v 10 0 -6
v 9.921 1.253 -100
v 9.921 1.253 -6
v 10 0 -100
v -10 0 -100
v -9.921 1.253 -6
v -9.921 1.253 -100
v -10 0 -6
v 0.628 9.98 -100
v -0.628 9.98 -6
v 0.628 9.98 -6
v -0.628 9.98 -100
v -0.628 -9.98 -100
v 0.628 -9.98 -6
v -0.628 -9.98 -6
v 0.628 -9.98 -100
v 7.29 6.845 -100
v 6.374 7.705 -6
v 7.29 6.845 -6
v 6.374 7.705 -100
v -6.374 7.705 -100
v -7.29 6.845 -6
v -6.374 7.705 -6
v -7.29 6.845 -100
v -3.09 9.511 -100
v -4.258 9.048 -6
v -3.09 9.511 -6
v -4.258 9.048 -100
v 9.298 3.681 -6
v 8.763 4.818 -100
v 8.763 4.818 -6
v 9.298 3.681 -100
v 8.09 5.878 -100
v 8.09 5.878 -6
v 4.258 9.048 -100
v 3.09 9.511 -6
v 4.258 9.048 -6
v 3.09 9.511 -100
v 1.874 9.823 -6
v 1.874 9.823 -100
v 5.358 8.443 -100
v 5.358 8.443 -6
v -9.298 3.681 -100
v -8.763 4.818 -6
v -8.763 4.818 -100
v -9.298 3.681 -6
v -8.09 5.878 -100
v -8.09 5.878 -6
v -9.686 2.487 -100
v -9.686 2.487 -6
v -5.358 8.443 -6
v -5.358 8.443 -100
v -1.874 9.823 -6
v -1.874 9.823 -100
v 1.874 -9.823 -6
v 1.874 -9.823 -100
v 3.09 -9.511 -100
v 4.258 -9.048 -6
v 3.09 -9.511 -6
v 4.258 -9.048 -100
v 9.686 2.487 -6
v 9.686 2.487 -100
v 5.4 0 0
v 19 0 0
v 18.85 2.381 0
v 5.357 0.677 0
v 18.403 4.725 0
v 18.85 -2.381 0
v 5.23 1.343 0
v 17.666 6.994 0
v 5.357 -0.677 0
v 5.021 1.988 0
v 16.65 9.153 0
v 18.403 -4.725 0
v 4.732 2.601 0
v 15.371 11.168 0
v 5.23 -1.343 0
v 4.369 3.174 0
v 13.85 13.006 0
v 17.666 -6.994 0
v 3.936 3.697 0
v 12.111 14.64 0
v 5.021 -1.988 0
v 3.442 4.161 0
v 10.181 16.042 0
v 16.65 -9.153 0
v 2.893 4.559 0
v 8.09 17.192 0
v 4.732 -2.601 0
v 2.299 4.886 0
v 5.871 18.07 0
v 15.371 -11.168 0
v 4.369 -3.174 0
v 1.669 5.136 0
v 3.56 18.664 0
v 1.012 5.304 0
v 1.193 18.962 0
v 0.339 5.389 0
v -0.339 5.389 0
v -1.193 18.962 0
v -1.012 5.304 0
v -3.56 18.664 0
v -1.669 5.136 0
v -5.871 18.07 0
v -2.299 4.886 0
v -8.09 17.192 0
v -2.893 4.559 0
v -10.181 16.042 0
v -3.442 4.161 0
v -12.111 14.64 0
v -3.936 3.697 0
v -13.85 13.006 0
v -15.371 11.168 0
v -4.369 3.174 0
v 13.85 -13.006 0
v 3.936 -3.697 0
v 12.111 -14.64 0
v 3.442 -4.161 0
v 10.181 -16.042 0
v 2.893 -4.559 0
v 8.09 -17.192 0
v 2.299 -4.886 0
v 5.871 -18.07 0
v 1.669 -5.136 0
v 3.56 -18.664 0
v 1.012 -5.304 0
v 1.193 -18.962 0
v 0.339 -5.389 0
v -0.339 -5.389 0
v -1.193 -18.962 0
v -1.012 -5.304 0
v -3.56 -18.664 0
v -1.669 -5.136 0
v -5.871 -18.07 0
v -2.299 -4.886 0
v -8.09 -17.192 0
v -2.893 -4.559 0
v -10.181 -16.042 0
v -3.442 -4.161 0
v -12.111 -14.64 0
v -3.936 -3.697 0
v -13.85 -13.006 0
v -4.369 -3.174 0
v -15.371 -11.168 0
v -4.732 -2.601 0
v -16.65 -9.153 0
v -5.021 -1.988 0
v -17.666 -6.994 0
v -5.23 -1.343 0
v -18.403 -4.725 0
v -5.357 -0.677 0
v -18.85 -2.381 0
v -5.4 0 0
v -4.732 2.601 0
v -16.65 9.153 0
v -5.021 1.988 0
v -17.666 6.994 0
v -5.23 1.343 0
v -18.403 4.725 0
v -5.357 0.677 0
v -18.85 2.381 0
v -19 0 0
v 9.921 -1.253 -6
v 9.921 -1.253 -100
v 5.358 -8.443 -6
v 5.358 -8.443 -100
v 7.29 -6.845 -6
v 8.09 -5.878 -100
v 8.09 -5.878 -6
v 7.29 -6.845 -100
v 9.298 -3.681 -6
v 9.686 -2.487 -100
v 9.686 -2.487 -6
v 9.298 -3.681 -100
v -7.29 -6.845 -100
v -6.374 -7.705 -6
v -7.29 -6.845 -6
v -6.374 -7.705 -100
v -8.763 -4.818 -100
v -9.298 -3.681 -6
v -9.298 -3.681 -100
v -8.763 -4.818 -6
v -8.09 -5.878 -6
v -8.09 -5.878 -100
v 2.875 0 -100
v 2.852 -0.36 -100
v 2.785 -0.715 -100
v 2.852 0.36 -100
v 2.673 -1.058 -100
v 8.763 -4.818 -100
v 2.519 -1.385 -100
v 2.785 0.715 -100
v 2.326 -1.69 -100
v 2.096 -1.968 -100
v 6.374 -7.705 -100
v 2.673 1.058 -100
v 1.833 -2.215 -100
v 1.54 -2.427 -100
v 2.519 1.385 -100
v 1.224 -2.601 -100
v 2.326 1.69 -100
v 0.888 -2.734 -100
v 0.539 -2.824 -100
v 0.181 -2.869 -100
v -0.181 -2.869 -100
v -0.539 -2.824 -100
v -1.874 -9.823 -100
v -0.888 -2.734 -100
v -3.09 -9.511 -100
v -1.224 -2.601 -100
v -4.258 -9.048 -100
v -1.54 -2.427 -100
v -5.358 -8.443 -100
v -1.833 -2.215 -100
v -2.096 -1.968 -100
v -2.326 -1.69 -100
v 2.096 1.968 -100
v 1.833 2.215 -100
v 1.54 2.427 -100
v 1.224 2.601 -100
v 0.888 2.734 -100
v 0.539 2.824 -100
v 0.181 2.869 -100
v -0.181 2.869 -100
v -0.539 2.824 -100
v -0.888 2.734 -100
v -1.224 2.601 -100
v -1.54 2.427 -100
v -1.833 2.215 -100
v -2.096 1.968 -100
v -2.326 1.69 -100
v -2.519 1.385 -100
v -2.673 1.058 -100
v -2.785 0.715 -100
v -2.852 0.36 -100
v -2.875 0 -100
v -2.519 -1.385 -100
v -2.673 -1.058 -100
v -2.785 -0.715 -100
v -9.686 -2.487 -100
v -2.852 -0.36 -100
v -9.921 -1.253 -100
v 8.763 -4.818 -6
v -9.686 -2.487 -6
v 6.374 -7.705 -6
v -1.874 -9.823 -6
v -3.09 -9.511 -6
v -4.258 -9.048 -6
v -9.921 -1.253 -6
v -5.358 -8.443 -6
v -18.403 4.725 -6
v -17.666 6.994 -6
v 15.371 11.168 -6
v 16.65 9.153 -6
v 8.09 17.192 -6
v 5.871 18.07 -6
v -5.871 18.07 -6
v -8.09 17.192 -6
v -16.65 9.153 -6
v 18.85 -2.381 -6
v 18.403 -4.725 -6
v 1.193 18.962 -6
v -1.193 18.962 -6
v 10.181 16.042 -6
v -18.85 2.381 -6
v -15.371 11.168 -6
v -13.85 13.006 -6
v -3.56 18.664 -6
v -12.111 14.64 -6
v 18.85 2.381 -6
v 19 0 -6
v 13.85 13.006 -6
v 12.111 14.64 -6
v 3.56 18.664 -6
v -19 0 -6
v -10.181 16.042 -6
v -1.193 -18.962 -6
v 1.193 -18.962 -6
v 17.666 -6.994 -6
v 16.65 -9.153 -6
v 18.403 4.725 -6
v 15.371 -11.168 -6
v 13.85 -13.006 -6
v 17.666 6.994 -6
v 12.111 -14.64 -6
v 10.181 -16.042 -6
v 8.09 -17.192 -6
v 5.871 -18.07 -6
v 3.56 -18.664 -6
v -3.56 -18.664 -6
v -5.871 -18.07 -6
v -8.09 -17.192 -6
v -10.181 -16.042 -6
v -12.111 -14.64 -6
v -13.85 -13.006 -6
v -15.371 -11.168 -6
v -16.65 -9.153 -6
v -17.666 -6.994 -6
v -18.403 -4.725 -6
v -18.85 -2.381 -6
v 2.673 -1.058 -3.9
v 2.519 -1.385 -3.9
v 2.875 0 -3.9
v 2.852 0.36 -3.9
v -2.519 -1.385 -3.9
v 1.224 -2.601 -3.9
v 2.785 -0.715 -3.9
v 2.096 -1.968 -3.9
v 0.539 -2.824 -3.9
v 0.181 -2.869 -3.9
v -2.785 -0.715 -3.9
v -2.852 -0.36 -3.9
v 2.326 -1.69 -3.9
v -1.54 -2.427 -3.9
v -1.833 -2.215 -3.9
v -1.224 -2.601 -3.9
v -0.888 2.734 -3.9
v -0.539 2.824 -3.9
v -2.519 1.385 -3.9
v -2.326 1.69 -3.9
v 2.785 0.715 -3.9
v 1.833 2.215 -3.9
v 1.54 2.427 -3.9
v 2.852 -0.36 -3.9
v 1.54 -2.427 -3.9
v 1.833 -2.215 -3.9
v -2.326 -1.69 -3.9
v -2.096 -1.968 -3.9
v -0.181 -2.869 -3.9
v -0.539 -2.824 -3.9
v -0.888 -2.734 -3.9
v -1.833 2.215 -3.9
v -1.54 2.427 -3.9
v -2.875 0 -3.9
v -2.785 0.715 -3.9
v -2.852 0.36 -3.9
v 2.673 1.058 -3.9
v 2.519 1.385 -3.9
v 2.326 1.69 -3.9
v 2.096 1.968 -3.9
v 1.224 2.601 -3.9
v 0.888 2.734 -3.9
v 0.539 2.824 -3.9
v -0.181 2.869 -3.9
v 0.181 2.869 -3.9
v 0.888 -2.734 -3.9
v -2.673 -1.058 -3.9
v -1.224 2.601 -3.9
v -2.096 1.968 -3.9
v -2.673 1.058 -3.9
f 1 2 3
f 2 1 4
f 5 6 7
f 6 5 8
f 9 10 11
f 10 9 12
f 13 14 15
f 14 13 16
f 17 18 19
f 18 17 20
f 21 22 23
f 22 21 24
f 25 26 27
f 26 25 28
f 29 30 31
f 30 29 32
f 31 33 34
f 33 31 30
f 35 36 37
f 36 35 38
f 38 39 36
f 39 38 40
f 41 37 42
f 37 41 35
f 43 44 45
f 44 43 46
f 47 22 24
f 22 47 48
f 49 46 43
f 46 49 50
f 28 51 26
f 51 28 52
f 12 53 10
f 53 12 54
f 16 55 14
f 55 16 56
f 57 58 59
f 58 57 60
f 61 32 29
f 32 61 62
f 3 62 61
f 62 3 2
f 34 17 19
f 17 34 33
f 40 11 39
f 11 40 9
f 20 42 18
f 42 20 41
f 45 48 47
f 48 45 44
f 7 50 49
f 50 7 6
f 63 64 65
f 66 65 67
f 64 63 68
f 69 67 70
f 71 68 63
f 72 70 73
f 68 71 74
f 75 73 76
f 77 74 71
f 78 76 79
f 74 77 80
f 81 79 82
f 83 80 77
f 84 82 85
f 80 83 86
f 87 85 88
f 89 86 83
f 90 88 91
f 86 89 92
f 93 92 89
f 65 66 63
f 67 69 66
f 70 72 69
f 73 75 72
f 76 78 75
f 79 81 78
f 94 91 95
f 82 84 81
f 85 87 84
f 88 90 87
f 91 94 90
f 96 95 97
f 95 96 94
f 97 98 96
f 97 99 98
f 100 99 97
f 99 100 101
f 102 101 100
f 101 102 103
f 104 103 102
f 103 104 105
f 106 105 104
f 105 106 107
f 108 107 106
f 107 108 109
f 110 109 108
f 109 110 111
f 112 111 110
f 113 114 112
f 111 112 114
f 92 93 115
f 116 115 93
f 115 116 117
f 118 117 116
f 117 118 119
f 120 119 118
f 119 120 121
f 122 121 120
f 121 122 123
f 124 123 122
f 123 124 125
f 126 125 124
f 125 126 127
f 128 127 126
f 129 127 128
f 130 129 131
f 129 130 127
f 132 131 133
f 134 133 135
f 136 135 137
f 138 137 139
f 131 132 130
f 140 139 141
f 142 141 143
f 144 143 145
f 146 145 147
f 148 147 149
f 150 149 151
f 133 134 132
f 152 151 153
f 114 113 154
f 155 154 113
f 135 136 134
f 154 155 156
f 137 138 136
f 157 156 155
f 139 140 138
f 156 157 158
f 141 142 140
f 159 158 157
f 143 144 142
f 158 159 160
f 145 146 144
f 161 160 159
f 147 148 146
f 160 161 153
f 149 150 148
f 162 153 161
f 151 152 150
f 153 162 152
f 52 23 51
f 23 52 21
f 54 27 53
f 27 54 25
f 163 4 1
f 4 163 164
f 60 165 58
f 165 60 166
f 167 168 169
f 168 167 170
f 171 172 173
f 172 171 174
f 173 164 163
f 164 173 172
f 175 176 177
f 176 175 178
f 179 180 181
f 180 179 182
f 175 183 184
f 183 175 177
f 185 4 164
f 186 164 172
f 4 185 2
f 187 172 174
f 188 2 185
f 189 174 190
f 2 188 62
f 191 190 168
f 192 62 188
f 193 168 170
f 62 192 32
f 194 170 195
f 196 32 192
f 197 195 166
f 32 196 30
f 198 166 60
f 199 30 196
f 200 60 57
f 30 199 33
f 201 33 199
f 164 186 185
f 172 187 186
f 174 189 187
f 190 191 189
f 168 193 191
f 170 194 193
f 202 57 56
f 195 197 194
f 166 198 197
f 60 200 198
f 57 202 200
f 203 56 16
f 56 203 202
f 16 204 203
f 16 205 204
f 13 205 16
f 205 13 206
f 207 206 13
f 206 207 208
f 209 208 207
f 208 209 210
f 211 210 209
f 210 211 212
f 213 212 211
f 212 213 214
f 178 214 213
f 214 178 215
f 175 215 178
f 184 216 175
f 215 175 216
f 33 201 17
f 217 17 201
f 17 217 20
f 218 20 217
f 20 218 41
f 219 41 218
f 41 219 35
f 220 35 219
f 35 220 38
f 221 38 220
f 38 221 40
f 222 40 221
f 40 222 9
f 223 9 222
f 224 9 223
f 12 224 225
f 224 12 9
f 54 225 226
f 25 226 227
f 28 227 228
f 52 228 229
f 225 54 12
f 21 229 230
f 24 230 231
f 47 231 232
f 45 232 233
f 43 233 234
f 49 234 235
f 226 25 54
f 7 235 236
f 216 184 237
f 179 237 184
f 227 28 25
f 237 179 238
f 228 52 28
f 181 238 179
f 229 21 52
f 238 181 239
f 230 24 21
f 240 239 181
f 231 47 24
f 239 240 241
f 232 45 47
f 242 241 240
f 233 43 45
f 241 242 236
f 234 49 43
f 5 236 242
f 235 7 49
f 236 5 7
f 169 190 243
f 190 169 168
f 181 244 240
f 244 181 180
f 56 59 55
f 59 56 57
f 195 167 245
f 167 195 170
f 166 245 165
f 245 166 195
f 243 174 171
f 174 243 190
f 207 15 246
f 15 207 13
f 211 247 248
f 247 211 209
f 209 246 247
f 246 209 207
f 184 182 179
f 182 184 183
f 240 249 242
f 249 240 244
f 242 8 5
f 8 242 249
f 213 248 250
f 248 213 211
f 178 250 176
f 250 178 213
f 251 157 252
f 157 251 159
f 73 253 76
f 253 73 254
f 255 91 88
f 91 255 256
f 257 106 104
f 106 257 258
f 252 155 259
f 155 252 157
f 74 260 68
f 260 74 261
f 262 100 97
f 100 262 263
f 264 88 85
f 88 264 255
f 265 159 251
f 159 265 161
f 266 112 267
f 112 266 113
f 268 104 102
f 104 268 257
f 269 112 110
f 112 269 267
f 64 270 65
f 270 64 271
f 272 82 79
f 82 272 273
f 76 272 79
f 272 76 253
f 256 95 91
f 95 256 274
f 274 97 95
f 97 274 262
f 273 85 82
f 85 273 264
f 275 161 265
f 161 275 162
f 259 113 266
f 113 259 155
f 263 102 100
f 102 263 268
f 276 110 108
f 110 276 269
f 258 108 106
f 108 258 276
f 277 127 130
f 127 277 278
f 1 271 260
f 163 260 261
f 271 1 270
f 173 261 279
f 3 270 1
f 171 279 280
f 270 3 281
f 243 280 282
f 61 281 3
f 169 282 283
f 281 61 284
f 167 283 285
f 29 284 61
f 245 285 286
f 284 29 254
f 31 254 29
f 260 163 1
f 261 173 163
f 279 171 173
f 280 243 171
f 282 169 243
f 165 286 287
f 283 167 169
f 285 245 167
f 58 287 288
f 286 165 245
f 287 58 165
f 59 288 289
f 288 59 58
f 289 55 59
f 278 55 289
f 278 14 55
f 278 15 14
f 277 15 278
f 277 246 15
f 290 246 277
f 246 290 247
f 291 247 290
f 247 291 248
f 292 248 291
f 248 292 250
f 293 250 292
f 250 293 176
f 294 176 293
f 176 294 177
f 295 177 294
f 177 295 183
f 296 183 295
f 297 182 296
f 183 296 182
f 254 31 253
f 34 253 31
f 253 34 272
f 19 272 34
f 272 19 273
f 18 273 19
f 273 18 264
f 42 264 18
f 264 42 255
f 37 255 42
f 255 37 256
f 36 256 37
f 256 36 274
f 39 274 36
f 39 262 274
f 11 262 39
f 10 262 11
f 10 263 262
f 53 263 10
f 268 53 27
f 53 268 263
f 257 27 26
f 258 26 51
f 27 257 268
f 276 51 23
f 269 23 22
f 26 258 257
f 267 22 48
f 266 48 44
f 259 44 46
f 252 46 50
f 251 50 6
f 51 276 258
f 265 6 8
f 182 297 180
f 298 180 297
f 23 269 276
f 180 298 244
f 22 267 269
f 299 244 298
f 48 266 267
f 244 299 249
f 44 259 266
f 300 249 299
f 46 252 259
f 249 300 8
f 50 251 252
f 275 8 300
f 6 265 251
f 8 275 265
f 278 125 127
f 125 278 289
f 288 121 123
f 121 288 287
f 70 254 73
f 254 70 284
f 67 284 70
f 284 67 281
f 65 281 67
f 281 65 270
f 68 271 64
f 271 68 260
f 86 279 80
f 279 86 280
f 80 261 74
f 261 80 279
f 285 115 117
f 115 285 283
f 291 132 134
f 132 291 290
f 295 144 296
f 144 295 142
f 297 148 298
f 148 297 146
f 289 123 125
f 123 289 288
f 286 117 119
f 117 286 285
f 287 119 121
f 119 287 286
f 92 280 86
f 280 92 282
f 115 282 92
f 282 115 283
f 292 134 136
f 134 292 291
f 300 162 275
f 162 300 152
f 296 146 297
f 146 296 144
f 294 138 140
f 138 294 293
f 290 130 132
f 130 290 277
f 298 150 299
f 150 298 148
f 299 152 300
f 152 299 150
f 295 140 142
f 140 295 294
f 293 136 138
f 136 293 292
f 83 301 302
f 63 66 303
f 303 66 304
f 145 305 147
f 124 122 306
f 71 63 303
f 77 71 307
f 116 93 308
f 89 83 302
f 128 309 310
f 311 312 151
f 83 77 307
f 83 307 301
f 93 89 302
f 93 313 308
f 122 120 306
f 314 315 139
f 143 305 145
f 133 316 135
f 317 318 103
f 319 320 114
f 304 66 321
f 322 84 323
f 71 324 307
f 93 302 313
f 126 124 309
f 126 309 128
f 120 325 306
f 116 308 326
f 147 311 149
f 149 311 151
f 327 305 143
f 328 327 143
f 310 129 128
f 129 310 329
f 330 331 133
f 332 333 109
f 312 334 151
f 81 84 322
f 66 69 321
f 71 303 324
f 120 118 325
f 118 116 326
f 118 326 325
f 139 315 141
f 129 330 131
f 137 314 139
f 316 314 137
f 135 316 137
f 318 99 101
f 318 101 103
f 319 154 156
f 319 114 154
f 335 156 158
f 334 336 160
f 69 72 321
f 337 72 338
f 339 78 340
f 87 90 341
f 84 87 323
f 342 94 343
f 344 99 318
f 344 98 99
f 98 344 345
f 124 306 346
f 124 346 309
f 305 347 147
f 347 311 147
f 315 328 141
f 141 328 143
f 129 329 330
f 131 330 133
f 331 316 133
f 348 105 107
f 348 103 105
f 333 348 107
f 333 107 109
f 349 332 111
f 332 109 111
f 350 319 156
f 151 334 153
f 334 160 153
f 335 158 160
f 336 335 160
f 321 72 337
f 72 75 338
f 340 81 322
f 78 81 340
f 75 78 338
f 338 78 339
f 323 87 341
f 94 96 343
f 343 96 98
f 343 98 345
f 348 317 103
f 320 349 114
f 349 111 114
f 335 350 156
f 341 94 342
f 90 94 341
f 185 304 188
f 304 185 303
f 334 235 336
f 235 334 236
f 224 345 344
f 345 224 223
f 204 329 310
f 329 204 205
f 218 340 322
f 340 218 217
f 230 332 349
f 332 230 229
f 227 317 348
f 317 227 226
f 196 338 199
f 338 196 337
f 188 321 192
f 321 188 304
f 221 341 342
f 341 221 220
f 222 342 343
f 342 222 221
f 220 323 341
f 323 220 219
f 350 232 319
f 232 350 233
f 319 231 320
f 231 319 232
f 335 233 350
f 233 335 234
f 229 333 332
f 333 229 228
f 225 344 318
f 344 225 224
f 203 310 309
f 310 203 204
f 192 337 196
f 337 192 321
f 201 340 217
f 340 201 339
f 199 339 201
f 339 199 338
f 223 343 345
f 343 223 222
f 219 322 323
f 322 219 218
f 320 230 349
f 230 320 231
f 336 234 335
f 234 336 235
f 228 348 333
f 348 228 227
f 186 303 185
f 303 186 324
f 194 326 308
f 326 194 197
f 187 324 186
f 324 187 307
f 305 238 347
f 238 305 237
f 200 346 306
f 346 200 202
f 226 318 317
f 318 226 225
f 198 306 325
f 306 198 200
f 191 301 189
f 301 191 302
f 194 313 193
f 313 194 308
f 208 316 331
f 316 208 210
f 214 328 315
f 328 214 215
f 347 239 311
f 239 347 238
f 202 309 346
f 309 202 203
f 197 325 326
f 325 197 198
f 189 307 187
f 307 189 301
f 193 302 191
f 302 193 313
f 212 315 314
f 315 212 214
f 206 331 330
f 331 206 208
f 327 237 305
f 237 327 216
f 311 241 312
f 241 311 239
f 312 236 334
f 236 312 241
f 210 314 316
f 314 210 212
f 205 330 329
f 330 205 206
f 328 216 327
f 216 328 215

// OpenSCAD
$fn = 50;


difference() {
	union() {
		translate(v = [0, 0, -100.0000000000]) {
			cylinder(h = 100, r = 10.0000000000);
		}
		translate(v = [0, 0, -6.0000000000]) {
			cylinder(h = 6, r = 19.0000000000);
		}
	}
	union() {
		translate(v = [0, 0, 0]) {
			rotate(a = [0, 0, 0]) {
				difference() {
					union() {
						#translate(v = [0, 0, -100.0000000000]) {
							cylinder(h = 100, r = 2.6000000000);
						}
						#translate(v = [0, 0, -3.9000000000]) {
							cylinder(h = 3.9000000000, r1 = 2.8750000000, r2 = 5.4000000000);
						}
						#translate(v = [0, 0, -100.0000000000]) {
							cylinder(h = 100, r = 2.8750000000);
						}
						#translate(v = [0, 0, -100.0000000000]) {
							cylinder(h = 100, r = 2.6000000000);
						}
					}
					union();
				}
			}
		}
	}
}
